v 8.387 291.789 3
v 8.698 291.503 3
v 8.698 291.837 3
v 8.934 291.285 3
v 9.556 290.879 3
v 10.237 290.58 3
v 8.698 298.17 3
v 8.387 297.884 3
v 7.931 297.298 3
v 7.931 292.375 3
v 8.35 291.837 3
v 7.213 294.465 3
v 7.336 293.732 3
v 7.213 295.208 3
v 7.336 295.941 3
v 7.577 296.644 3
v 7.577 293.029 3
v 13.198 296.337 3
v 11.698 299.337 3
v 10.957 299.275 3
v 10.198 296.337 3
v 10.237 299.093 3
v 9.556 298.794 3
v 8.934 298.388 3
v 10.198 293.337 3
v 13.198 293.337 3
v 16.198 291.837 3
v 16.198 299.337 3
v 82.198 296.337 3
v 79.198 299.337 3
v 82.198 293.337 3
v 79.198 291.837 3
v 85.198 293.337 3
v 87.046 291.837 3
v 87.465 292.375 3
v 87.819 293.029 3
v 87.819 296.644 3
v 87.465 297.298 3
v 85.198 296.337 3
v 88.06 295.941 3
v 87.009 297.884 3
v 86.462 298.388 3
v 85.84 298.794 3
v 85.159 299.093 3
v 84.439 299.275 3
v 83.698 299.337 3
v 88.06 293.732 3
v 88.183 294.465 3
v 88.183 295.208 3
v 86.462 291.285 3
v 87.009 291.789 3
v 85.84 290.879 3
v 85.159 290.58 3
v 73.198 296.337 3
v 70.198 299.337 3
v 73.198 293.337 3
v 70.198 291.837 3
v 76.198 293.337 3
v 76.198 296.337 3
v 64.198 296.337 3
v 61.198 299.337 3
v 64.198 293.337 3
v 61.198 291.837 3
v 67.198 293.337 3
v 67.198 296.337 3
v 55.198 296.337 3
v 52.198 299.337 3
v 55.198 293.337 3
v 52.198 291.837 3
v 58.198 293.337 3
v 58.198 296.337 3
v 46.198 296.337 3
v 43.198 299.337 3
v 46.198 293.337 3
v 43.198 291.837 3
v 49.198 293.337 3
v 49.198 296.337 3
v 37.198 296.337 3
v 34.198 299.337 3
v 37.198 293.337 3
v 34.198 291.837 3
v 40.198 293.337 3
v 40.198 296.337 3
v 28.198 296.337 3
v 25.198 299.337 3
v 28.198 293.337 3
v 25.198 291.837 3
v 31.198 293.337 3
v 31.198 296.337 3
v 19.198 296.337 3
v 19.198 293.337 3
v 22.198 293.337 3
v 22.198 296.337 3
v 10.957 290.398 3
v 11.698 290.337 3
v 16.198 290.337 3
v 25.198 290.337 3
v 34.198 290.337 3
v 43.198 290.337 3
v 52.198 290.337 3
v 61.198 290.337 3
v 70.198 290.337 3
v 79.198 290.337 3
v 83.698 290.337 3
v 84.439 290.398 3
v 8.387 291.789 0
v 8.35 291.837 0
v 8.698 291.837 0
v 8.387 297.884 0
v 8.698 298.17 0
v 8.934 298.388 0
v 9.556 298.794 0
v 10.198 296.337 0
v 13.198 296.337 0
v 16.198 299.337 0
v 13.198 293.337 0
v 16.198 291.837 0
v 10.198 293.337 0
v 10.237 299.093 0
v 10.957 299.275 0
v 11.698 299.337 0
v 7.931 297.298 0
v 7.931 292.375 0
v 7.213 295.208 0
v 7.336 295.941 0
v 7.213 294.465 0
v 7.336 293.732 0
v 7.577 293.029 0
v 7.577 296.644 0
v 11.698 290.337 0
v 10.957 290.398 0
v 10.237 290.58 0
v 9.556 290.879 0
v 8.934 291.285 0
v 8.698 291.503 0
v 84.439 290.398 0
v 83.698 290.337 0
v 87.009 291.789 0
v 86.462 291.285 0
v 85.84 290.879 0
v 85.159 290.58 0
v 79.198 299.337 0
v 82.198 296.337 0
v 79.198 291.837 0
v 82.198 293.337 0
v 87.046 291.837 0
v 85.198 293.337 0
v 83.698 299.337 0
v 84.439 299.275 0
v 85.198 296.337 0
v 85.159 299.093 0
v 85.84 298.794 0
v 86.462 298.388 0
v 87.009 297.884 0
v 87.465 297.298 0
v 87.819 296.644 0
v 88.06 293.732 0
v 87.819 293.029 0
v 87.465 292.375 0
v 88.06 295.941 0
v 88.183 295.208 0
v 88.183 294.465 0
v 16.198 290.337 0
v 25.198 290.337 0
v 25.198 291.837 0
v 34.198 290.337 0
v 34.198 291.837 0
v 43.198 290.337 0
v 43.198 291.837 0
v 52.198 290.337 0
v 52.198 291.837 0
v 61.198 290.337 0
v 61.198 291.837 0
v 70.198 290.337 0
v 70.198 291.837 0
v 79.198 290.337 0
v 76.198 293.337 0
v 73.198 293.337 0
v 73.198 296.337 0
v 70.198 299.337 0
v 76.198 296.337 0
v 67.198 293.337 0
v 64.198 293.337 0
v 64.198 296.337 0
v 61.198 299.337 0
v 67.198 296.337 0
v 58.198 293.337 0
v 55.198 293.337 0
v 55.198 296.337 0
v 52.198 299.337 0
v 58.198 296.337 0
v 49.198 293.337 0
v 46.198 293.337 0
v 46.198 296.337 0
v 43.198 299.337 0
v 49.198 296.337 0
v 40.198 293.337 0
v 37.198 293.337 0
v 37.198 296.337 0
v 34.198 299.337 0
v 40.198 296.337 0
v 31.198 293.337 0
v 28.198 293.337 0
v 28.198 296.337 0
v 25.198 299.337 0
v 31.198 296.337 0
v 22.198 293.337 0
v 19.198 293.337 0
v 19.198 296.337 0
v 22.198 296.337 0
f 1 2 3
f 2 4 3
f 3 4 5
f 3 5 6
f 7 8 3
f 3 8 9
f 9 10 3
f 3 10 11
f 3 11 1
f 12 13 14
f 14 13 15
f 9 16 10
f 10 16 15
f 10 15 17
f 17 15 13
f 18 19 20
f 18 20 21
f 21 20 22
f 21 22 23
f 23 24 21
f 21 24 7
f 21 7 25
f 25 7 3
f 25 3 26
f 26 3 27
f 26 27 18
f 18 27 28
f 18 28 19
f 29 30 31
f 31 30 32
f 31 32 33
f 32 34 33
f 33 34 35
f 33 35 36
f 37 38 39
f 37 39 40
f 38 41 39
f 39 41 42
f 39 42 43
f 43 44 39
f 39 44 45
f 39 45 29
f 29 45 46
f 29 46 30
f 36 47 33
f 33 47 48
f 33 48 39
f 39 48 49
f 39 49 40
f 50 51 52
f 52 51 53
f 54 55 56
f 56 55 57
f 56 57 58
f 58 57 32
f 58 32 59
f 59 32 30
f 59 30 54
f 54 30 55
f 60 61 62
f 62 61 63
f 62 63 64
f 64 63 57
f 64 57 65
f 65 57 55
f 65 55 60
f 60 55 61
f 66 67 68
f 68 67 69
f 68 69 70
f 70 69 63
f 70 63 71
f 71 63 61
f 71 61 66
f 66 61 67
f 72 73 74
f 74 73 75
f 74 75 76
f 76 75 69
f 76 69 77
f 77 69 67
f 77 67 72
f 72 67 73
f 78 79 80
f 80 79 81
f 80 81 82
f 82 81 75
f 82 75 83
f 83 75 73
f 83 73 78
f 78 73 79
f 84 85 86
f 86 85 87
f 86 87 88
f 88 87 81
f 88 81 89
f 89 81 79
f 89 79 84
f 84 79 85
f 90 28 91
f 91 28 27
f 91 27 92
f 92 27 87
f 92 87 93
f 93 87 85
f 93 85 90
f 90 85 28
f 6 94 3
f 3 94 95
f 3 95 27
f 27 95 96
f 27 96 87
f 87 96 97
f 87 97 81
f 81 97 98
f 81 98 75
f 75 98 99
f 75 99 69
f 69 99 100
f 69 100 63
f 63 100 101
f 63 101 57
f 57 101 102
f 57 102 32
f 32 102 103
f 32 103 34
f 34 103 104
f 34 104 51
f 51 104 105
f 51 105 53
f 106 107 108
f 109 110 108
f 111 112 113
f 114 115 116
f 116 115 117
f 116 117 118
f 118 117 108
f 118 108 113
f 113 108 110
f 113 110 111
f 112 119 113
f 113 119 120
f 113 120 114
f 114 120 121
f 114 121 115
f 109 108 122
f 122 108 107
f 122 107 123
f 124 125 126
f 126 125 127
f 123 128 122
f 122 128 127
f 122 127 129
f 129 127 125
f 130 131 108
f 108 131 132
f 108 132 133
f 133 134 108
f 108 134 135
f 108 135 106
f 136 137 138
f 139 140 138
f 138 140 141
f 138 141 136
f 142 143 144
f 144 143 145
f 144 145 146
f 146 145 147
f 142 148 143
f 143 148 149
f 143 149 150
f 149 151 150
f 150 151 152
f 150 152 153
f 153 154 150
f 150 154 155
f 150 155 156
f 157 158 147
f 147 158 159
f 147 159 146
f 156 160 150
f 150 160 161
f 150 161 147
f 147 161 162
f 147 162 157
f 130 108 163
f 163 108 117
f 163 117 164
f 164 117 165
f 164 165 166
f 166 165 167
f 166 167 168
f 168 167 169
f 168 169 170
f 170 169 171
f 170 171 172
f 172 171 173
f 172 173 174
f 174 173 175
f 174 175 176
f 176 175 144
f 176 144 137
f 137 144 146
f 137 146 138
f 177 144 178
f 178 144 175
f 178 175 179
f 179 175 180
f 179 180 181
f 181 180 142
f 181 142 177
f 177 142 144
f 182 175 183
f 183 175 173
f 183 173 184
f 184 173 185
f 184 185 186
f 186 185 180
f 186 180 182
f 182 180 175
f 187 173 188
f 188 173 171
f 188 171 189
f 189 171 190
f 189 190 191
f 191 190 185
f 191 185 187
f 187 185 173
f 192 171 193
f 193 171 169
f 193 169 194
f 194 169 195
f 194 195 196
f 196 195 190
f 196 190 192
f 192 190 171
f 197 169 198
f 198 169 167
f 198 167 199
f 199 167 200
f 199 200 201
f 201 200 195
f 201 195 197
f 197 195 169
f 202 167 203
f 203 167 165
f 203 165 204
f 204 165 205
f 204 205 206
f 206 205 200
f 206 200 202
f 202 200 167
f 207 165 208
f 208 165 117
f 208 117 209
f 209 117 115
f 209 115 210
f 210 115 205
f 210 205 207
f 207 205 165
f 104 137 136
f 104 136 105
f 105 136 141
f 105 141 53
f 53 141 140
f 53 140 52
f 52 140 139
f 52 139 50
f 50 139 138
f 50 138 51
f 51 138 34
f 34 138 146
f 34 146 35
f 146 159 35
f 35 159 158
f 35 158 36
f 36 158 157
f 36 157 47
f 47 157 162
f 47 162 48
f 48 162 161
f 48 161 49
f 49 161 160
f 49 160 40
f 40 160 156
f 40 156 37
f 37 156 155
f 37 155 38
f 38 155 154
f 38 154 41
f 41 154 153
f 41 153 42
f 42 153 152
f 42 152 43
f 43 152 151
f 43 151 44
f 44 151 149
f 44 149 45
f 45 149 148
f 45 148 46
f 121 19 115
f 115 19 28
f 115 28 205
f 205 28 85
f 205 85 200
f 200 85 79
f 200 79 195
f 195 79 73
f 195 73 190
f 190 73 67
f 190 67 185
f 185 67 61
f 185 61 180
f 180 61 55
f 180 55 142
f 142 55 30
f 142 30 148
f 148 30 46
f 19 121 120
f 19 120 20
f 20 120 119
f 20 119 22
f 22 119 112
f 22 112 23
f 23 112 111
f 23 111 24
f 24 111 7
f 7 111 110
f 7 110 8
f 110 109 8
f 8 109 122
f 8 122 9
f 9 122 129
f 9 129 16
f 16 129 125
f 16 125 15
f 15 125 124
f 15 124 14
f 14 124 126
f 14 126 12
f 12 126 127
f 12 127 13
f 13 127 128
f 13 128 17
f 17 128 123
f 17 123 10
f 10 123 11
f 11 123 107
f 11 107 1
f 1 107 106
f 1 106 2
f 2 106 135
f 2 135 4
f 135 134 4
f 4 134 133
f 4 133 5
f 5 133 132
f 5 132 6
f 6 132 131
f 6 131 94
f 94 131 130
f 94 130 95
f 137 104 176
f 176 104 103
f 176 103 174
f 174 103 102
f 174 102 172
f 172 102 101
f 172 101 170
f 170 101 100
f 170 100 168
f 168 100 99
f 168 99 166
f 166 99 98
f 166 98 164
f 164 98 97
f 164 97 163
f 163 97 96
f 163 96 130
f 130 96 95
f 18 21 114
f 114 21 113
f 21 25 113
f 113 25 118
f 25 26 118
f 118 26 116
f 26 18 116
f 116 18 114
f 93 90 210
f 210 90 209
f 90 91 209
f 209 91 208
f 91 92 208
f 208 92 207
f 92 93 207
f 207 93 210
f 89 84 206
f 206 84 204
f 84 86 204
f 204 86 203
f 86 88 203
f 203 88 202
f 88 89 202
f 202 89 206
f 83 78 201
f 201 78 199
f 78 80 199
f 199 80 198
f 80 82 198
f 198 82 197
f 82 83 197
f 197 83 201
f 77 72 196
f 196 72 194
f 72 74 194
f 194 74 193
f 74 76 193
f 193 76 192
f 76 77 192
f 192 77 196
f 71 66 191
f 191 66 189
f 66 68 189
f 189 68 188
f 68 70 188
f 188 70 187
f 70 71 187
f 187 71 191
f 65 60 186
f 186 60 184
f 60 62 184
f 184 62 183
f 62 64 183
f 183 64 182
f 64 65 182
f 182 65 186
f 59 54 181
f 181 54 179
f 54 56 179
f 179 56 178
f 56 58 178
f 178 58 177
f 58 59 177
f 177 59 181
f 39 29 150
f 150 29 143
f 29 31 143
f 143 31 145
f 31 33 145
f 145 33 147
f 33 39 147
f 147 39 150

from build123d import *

# Parameters (mm, degrees)
MODEL_W                 = 3
MODEL_H                 = 3
SALIENTE_EXTRUIR1_DEPTH = 3


with BuildPart() as part:
    # Model → Saliente-Extruir1 (new body)
    with BuildSketch(Plane.XY):
        with BuildLine():
            Line((11.697885884, 299.336573121), (83.697885884, 299.336573121))
            ThreePointArc((83.697885884, 299.336573121), (88.197885884, 294.836573121), (83.697885884, 290.336573121))
            Line((83.697885884, 290.336573121), (11.697885884, 290.336573121))
            ThreePointArc((11.697885884, 290.336573121), (7.197885884, 294.836573121), (11.697885884, 299.336573121))
        make_face()
        with Locations((11.697885884, 294.836573121)):
            Rectangle(MODEL_W, MODEL_H, mode=Mode.SUBTRACT)
        with Locations((20.697885884, 294.836573121)):
            Rectangle(MODEL_W, MODEL_H, mode=Mode.SUBTRACT)
        with Locations((29.697885884, 294.836573121)):
            Rectangle(MODEL_W, MODEL_H, mode=Mode.SUBTRACT)
        with Locations((38.697885884, 294.836573121)):
            Rectangle(MODEL_W, MODEL_H, mode=Mode.SUBTRACT)
        with Locations((47.697885884, 294.836573121)):
            Rectangle(MODEL_W, MODEL_H, mode=Mode.SUBTRACT)
        with Locations((56.697885884, 294.836573121)):
            Rectangle(MODEL_W, MODEL_H, mode=Mode.SUBTRACT)
        with Locations((65.697885884, 294.836573121)):
            Rectangle(MODEL_W, MODEL_H, mode=Mode.SUBTRACT)
        with Locations((74.697885884, 294.836573121)):
            Rectangle(MODEL_W, MODEL_H, mode=Mode.SUBTRACT)
        with Locations((83.697885884, 294.836573121)):
            Rectangle(MODEL_W, MODEL_H, mode=Mode.SUBTRACT)
    extrude(amount=SALIENTE_EXTRUIR1_DEPTH)


solid = part.part
